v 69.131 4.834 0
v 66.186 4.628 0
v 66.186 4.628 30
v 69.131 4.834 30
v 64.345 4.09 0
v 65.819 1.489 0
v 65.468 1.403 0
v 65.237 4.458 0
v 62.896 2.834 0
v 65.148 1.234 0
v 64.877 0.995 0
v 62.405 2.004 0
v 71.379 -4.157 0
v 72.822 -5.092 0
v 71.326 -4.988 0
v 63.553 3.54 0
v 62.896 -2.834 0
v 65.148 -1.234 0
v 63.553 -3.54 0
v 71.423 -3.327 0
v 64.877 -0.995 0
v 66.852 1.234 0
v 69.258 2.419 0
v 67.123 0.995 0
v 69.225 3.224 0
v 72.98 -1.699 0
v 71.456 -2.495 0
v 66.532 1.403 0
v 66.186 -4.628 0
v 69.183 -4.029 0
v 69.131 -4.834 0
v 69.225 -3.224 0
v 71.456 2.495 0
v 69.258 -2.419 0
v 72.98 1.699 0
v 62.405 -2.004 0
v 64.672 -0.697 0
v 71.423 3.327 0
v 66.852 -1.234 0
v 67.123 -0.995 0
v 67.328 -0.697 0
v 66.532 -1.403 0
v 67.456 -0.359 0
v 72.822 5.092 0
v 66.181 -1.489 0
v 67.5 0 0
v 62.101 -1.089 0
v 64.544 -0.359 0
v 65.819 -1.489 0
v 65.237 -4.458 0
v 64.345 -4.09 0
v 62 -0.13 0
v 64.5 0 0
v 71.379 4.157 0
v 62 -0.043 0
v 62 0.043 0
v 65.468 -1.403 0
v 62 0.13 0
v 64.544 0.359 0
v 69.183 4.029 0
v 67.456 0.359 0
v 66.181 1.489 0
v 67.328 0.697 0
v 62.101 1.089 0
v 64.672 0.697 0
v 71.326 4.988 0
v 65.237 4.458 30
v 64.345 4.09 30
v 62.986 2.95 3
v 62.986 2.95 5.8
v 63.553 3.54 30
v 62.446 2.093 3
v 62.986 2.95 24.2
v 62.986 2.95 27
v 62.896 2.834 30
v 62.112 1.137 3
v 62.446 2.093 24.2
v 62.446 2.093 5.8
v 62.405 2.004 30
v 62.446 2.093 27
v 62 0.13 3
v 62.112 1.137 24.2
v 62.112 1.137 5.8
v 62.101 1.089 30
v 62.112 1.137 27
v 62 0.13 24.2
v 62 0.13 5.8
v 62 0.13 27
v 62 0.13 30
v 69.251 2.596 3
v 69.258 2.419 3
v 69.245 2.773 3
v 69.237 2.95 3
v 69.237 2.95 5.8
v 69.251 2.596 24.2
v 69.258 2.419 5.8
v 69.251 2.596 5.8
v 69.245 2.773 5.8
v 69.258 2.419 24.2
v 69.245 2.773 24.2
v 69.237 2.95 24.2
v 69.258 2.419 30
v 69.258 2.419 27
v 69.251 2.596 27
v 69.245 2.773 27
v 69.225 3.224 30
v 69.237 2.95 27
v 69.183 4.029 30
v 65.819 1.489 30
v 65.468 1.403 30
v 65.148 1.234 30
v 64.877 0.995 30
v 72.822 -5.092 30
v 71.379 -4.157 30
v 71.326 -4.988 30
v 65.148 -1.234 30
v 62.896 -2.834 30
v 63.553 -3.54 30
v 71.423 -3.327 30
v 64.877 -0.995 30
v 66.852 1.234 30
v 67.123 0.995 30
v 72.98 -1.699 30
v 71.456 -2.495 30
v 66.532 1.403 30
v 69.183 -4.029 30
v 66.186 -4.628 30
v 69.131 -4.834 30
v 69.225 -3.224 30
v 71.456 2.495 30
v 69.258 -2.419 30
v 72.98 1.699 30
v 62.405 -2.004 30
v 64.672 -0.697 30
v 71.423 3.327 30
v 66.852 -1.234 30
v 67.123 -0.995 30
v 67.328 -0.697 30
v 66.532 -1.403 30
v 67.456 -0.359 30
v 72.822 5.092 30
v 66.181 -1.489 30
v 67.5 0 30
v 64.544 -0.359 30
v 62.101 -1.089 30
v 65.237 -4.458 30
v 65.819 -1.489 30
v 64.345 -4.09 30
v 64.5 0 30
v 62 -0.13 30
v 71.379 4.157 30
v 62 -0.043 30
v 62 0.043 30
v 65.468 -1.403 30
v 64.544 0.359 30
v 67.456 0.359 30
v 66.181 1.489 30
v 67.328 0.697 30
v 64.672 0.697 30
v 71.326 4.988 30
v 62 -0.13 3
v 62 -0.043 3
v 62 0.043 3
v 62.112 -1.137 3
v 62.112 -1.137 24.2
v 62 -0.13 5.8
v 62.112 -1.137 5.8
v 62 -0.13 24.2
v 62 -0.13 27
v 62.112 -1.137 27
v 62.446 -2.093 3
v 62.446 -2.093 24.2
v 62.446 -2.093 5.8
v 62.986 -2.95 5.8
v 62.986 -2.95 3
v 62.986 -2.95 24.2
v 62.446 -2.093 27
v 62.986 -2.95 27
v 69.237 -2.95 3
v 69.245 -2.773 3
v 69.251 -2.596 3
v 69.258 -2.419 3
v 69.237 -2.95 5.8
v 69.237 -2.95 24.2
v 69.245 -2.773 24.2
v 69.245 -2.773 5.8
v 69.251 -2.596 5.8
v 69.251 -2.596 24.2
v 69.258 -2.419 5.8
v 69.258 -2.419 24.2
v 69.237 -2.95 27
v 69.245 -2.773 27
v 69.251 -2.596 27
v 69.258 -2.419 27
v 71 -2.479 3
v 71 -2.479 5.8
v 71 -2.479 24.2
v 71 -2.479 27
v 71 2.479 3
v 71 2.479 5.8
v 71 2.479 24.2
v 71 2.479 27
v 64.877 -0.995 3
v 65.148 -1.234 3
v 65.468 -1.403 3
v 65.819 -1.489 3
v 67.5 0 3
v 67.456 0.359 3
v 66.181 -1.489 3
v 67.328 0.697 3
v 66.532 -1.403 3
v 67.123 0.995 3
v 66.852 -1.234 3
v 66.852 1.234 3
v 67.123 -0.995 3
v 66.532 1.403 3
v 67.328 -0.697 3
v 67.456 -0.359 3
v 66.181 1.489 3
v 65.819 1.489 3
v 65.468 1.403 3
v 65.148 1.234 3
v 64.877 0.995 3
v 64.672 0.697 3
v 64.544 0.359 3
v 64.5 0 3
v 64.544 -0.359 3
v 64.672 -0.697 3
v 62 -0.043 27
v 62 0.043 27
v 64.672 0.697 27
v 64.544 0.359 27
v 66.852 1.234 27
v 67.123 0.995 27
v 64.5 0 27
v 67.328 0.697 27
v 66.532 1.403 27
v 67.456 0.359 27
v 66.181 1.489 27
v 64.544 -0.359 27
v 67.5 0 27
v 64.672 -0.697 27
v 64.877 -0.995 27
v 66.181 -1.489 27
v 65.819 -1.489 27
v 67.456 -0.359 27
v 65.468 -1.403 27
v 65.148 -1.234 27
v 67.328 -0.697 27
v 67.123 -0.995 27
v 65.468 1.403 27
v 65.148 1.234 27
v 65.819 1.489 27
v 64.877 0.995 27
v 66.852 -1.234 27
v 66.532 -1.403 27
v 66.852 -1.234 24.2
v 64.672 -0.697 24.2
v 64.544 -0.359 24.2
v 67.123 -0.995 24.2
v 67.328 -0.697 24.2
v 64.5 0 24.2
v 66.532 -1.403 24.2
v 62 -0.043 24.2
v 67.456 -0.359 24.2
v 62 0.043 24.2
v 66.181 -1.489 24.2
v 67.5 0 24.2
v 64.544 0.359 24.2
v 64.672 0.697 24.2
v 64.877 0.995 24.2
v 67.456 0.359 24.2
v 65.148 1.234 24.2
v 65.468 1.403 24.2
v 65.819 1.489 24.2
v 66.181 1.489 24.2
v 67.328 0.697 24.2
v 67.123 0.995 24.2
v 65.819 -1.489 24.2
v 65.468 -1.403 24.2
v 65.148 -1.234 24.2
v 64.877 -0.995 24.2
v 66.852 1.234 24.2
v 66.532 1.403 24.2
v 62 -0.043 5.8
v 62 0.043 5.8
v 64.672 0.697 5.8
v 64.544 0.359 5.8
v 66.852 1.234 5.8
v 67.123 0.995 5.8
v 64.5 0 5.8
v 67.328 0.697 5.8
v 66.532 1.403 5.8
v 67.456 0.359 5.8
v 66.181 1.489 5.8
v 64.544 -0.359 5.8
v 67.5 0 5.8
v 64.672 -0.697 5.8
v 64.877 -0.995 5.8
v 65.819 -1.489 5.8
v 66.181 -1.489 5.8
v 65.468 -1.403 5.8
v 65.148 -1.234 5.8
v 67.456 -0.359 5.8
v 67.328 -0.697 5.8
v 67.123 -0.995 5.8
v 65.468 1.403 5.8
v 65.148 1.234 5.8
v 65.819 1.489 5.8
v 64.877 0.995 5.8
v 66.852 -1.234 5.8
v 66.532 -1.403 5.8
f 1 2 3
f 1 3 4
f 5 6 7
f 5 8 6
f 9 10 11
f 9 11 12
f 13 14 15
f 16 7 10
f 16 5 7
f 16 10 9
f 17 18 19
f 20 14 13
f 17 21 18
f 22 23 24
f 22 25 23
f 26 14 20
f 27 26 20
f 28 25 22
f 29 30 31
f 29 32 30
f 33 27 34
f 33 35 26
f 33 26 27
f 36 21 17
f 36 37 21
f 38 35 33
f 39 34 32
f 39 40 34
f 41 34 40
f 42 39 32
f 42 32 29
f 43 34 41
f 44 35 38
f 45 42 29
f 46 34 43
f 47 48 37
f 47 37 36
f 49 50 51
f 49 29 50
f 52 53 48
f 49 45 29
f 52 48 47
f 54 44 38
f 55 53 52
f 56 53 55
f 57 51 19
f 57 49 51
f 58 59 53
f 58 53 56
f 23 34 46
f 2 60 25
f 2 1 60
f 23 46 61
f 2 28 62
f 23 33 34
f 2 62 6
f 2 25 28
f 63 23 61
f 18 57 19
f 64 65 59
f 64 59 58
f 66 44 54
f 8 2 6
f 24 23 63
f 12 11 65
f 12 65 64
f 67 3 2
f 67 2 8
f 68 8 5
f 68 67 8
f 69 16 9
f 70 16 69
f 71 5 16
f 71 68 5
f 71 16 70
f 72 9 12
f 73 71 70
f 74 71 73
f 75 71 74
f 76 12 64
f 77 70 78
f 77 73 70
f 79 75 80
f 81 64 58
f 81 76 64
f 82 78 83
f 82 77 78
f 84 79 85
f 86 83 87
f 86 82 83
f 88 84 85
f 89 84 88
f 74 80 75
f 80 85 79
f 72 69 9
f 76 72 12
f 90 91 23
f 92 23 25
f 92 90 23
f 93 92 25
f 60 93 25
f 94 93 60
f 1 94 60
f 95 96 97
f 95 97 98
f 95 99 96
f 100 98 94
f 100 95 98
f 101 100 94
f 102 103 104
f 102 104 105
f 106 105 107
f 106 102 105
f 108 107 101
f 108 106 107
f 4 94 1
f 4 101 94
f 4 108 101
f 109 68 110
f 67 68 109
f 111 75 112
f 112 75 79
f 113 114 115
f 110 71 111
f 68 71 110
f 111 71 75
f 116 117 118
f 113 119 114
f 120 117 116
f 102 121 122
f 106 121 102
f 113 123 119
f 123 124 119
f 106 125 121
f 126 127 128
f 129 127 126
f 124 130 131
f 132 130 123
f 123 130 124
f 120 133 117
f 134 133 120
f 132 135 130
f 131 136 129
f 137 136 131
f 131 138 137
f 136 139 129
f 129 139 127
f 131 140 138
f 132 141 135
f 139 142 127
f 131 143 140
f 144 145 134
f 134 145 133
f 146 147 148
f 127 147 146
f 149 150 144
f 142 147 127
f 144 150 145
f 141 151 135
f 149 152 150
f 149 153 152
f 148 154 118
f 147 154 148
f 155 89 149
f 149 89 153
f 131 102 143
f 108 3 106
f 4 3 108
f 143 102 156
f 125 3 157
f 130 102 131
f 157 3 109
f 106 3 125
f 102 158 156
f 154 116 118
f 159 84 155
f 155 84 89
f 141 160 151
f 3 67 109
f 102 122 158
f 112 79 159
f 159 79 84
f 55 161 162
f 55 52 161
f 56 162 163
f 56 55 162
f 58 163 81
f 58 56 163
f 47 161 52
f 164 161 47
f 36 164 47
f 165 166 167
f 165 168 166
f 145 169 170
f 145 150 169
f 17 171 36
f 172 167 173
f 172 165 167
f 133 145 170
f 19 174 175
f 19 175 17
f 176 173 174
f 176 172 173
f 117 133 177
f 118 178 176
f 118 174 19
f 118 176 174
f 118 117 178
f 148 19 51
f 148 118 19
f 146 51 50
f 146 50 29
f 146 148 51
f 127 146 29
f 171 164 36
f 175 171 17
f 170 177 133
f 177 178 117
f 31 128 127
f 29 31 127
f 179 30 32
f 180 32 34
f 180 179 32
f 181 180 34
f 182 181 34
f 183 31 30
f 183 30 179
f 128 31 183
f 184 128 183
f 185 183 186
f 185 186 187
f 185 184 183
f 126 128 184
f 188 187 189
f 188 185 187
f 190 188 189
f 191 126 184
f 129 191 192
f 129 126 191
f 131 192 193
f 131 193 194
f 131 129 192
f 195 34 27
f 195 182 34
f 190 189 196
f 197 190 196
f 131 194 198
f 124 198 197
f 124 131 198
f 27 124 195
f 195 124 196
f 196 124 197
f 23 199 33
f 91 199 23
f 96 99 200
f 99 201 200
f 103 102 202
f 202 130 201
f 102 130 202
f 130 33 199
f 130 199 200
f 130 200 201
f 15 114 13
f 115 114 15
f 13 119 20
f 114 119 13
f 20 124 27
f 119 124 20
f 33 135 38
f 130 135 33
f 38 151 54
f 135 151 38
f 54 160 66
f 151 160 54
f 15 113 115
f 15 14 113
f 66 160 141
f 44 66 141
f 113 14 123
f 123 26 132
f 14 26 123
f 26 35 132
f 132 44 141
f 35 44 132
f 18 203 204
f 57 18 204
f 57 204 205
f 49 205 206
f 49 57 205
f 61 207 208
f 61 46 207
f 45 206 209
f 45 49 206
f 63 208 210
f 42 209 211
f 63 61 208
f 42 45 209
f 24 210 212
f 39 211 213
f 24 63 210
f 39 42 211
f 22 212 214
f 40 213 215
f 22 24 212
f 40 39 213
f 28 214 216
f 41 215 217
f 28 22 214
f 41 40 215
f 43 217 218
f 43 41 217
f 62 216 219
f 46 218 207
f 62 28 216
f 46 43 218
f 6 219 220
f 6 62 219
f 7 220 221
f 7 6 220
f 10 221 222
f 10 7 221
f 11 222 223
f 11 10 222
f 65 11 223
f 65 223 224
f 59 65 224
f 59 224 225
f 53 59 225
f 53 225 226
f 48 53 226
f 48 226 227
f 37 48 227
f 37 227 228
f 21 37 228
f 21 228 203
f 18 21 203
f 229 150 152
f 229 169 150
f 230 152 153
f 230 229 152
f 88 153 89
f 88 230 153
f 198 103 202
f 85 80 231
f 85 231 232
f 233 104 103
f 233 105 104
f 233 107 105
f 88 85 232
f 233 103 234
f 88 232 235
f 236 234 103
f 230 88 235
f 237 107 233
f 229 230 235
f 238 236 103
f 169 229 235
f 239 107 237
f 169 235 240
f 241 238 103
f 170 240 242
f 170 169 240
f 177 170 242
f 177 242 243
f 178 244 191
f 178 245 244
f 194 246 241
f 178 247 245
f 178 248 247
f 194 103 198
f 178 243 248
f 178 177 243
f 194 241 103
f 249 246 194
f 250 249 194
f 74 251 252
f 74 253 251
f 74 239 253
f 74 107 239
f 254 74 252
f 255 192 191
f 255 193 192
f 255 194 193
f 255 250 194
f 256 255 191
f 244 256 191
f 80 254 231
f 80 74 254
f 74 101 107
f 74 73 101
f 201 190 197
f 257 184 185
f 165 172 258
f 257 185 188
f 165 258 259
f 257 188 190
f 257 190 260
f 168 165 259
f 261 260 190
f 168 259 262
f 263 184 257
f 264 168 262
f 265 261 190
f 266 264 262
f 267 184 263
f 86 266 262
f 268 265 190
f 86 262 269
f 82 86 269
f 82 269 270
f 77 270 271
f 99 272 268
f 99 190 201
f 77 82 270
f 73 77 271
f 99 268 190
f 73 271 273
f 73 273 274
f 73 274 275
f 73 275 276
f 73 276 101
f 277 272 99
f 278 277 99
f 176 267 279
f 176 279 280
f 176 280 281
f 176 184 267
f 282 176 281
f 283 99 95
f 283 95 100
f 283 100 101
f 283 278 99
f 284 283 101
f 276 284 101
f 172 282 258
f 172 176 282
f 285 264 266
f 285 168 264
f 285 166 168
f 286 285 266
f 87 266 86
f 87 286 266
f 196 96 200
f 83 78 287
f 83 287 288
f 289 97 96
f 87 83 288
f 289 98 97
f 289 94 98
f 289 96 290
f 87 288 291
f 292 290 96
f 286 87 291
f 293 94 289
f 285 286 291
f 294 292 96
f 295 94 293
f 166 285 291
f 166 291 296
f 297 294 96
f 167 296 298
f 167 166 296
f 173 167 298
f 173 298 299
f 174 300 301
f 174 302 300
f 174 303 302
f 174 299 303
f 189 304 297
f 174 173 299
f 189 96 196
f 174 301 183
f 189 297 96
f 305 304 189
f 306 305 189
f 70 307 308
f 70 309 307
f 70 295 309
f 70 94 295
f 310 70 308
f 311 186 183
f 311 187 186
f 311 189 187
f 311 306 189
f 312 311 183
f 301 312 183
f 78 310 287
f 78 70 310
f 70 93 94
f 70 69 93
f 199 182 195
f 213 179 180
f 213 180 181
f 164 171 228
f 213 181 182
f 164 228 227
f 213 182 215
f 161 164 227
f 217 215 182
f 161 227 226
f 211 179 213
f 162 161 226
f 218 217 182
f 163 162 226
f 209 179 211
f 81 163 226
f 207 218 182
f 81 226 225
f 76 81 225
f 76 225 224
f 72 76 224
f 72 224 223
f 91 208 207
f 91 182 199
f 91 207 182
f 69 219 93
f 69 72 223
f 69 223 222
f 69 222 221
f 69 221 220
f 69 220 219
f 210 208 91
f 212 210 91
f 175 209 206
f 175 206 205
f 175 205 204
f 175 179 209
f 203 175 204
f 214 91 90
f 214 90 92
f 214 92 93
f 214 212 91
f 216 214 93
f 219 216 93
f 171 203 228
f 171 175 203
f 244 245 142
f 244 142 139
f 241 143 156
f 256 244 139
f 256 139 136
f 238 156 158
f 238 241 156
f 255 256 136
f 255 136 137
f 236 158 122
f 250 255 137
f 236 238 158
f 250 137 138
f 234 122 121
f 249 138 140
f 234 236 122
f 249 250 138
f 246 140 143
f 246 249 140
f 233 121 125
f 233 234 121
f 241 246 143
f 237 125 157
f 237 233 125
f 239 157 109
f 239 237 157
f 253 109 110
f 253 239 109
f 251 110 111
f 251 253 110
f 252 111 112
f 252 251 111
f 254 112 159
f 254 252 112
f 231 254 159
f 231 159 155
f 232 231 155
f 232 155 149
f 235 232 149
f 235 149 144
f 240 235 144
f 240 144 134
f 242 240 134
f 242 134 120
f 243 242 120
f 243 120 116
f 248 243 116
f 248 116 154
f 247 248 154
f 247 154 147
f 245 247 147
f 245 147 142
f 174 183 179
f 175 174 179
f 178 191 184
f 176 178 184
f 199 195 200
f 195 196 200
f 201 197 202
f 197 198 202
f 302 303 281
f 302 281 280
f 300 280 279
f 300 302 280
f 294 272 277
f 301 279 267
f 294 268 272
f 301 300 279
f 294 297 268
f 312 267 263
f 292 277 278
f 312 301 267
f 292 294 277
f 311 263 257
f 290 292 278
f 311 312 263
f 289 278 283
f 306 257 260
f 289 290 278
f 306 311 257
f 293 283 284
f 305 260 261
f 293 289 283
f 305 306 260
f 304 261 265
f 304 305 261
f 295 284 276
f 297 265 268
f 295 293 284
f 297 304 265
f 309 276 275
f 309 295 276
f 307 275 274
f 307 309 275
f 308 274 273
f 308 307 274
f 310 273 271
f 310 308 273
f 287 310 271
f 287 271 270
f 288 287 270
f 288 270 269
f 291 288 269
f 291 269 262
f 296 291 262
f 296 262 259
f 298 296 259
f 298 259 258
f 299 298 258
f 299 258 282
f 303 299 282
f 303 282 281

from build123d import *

# Parameters (mm, degrees)
SKETCH_R        = 1.5
PAD_DEPTH       = 30
POCKET_DEPTH    = 30.001
FILLET_R        = 4.5
SKETCH002_W     = 5.9
SKETCH002_H     = 2.8
POCKET001_DEPTH = 71


with BuildPart() as part:
    # Sketch → Pad (new body)
    with BuildSketch(Plane.XY):
        with BuildLine():
            Line((61.848971, 4.324901), (72.822176, 5.092223))
            ThreePointArc((72.822176, -5.092223), (73, 0), (72.822176, 5.092223))
            Line((72.822176, -5.092223), (61.848971, -4.324901))
            ThreePointArc((61.848971, -4.324901), (62, 0), (61.848971, 4.324901))
        make_face()
        with Locations((66, 0)):
            Circle(SKETCH_R, mode=Mode.SUBTRACT)
    extrude(amount=PAD_DEPTH)

    # Sketch001 (on Face7 of Pad) → Pocket (cut, through all)
    with BuildSketch(Plane.XY.offset(30)):
        with BuildLine():
            ThreePointArc((71.32583, -4.987588), (71.402012, -3.742021), (71.456444, -2.495314))
            Line((69.257784, -2.418535), (71.456444, -2.495314))
            ThreePointArc((69.131189, -4.834124), (69.205027, -3.626882), (69.257784, -2.418535))
            Line((69.131189, -4.834124), (71.32583, -4.987588))
        make_face()
        with BuildLine():
            Line((69.257784, 2.418535), (71.456444, 2.495314))
            ThreePointArc((71.456444, 2.495314), (71.402012, 3.742021), (71.32583, 4.987588))
            Line((69.131189, 4.834124), (71.32583, 4.987588))
            ThreePointArc((69.257784, 2.418535), (69.205027, 3.626882), (69.131189, 4.834124))
        make_face()
    extrude(amount=-POCKET_DEPTH, mode=Mode.SUBTRACT)

    # Fillet
    fillet_edges = [part.edges().sort_by_distance(p)[0] for p in [
        (61.848971, 4.324901, 15),
        (61.848971, -4.324901, 15),
    ]]
    fillet(fillet_edges, radius=FILLET_R)

    # Sketch002 → Pocket001 (cut)
    with BuildSketch(Plane.YZ):
        with Locations((0, 25.6)):
            Rectangle(SKETCH002_W, SKETCH002_H)
        with Locations((0, 4.4)):
            Rectangle(SKETCH002_W, SKETCH002_H)
    extrude(amount=POCKET001_DEPTH, mode=Mode.SUBTRACT)


solid = part.part
